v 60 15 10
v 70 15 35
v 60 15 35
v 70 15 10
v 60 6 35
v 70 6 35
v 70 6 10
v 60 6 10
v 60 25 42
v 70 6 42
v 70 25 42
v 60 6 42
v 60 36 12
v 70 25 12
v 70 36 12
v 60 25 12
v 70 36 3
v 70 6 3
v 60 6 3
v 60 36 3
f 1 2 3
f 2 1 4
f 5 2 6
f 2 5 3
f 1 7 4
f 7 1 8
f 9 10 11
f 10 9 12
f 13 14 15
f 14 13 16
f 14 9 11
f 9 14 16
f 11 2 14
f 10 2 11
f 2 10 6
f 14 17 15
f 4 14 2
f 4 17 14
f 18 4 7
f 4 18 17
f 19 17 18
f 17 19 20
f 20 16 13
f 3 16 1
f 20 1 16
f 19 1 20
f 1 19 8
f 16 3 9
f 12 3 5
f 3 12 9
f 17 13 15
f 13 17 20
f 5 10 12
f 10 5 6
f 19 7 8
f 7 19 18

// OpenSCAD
// file: smoothed_edge.scad
module smoothed_edge(radius=1.5, height=64) {
  difference() {
    difference() {
      color([1, 0, 0]) cylinder(h=height, r=radius);
      translate([-radius, 0, 0]) {
        color([0, 1, 0]) cube([radius * 2, radius, height]);
      }
    }

    translate([0, -radius, 0]) {
      color([0, 1, 0]) cube([radius, radius * 2, height]);
    }
  }
}
// file: smoothed_corner.scad
$fn=200;
module smoothed_corner(radius=5) {
  difference() {
    sphere(radius);
    union() {
      translate([0,-5,-5]) {
        cube([5,10,10]);
      }

      translate([-10,0,-5]) {
        cube([10, 10, 10]);
      }

      translate([-5,-5,0]) {
        cube([10,10,10]);
      }
    }

  }
}

smoothed_corner();
// file: battery_door_switch_screws.scad
use <screw_with_nut.scad>

module battery_door_switch_screws() {
  // hole top
  translate([9,49,3]) {
    rotate([0,-90,0]) color([0,0,1]) screw_with_nut(threaded_height=6, nut_type="none");
  }

  // hole bottom
  translate([9,49,36]) {
    rotate([0,-90,0]) color([0,0,1]) screw_with_nut(threaded_height=6, nut_type="none");
  }
}
// file: switch.scad
$fn = 200;
module switch_hole() {
  translate([0,0,-6.5]) {
    color([1,0,0]) cube([5,8,13]);
  }
  rotate([0,90,0]) cylinder(h=5, r=6.5);
  translate([0,8,0]) {
    rotate([0,90,0]) cylinder(h=5, r=6.5);
  }
}

function get_switch_x() = 62.5;
function get_switch_y() = 27;

module switch() {
  // make the front curvy
  intersection() {
    // remove a cylinder from the back to add a curve
    difference() {
      cube([get_switch_x(),get_switch_y(),18]);

      translate([30,27,345]) {
        rotate([90,0,0])
        color([1,0,0])
        cylinder(h=27, r=330.2);
      }
    }

    translate([30,27,331]) {
      rotate([90,0,0])
      color([1,0,0])
      cylinder(h=27, r=330.2);
    }
  }

  // switch_hole();
  translate([65 / 2 + 2.5, 12.5,1.5]) {
    rotate([0,90,90]) { switch_hole(); }
  }
}

// translate([30,27,345]) {
  // rotate([90,0,0])
  // color([1,0,0])
  // cylinder(h=27, r=330.2);
// }
switch();
// file: nut.scad
// 1.5^2 + y^2 = 3^2
// sqrt(3^2 - 1.5^2)
//       30
//    /   |
// 60  - 90
// cos(30) = x / 3
// x = 3 cos(30)
module hex(side_length=3) {
  points = [[0,0], [side_length, 0], [side_length / 2, side_length * cos(30)]];
  for (i=[0:1:5]) {
    rotate([0,0,i * 60]) polygon(points);
  }
}

module hex_nut(side_length=3, height=2) {
    linear_extrude(height=height) hex(side_length);
}

module square_nut(side_length=5, height=2) {
    cube([5,5,2]);
}
// file: screw.scad
$fn=100;

module screw(screw_head_radius=3, screw_head_height=3, threaded_radius=1.5, threaded_height=10) {
  // screw head
  cylinder(h=screw_head_height, r=screw_head_radius);

  translate([0, 0, screw_head_height]) {
    cylinder(h=threaded_height, r=threaded_radius);
  }
}

// m3x10

screw(screw_head_radius=3, screw_head_height=3, threaded_radius=1.5, threaded_height=10);
// file: usbc_female.scad
$fn=100;
module usbc_female() {
  // left half cylinder
  rotate([-90,0,0]) cylinder(h=20, r=3.25);

  translate([0,0,-3.25]) {
    cube([7,20,6.5]);
  }

  // right half cylinder
  translate([7,0,0]) {
    rotate([-90,0,0]) cylinder(h=20, r=3.25);
  }
}

usbc_female();
// file: battery_door_with_switch.scad
use <battery_door.scad>
use <switch.scad>
use <screw_with_nut.scad>
use <battery_door_switch_screws.scad>
$fn = 300;


module removables() {
  // switch
  translate([7.5,80,7]) {
    color([1, 0,0]) rotate([0,0,-90]) rotate([90,0,0]) switch();
  }

  battery_door_switch_screws();
}
module battery_door_with_switch(type="object") {
  difference() {
    battery_door(type=type);
    removables();
  }
}

battery_door_with_switch();
// file: battery_door.scad
$fn = 100;
use <smoothed_cube.scad>

module stuff(
    depth=5,
    battery_height = 30 + 5 * 2,
    fan_radius = 60,
    oset = 1,
    smoothing_factor=1.5,
    type="object",
    y=9,
    z = 9
) {
  // door knob

  z_offset = battery_height / 2 - z / 2;
  translate([depth, -3, z_offset]) {
    if (type == "object")  {
      color([1,0,0]) smoothed_cube(
          x=3,
          y=y,
          z=z,
          radius_1 = smoothing_factor,
          radius_2=smoothing_factor,
          radius_3=smoothing_factor,
          radius_4=smoothing_factor,
          edge_1_2_radius=smoothing_factor,
          edge_2_3_radius=smoothing_factor,
          edge_3_4_radius=smoothing_factor,
          edge_1_5_radius=smoothing_factor,
          edge_2_6_radius=smoothing_factor,
          edge_3_7_radius=smoothing_factor,
          edge_4_8_radius=smoothing_factor
      );
    } else {
      // add some spacing so that it just fits
      color([1,0,0]) cube([3,y,9]);
    }
  }

  // body
  object_offset = type == "object" ? 1 : 0;

  translate([5,4,0]) {
    smoothed_cube(
      x=3,
      y=100 - depth - 5 - object_offset,
      z= battery_height,
      edge_1_2_radius=3
    );
  }


}

// stuff();
module battery_door(
    depth=5,
    battery_height = 29 + 5 * 2,
    fan_radius = 60,
    oset = 1,
    type="object"
) {
  // union() {
    color([1,0,1])
    stuff(battery_height=battery_height, type=type);

    // translate([4, -3, 19]) {
      // color([0,1,0]) cylinder(h=9, r=4);
    // }
  // }
}
//
// battery_door(type="spacing");
battery_door();
// remove();
  // to smoothen
// file: shoulder_strap_support_screws.scad
use <screw_with_nut.scad>
module shoulder_strap_support_screws(wideness=15) {
  // left hole
  translate([wideness,0,5]) {
    color([1, 0, 0]) rotate([-90,0,0]) screw_with_nut(threaded_height=8);
  }

  // right hole
  translate([-wideness,0,5]) {
    color([1, 0, 0]) rotate([-90,0,0]) screw_with_nut(threaded_height=8);
  }
}
// file: top_screws_with_nuts.scad
use <screw_with_nut.scad>
module top_screws_with_nuts(fan_radius=60, depth=5, height=50) {
  // top hole 1
  translate([fan_radius * 2, fan_radius * 2 + depth + 1, 2 * depth]) {
    rotate([-90,0,0]) color([0,0,1]) screw_with_nut(threaded_height=6);
  }

  // top hole 2
  translate([fan_radius * 2, fan_radius * 2 + depth + 1, height + depth ]) {
    rotate([-90,0,0]) color([0,1,0]) screw_with_nut(threaded_height=6);
  }
}


top_screws_with_nuts();
// file: tcore_powerbank.scad
module tcore_powerbank() {
  cube([70,70,30]);
  translate([70 / 5, 70 / 2, 30]) {
    color([1,0,0])
    cylinder(h=5, r=10);
  }
}

tcore_powerbank();
// file: screw_with_nut.scad
use <screw.scad>
use <nut.scad>

module screw_with_nut(hex_nut_height=2.5, screw_head_height=3, threaded_height=10, threaded_radius=1.5, screw_head_radius=3, hex_nut_side_length=3, square_nut_height=2, square_nut_side_length=5, nut_type="hex") {
  screw(screw_head_radius=screw_head_radius, screw_head_height=screw_head_height, threaded_radius=threaded_radius, threaded_height=threaded_height);

  if (nut_type == "hex") {
    translate([0,0, screw_head_height + threaded_height - hex_nut_height]) {
      hex_nut(side_length=hex_nut_side_length, height=hex_nut_height);
    }
  }

  else if (nut_type == "square"){
    translate([
        -square_nut_side_length / 2,
        -square_nut_side_length / 2,
        screw_head_height + threaded_height - square_nut_height
    ]) {
      square_nut(side_length=square_nut_side_length, height=square_nut_height);
    }
  }

}

screw_with_nut(nut_type="square");
// file: noctua_speed_controller.scad
$fn = 100;
module noctua_speed_controller(led_height=14.5) {
  cube([40,25,14]);
  // speed dial
  translate([16,25 / 2,14]) {
    cylinder(h=7, r=3.75);
  }

  // left LED
  translate([8, 3.5, 0]) {
    cylinder(h=led_height, r=1.5);
  }

  // right LED
  translate([8, 25 - 3.5, 0]) {
    cylinder(h=led_height, r=1.5);
  }
}

noctua_speed_controller();
  // translate([8, 3.5, 0]) {
    // cylinder(h=3, r=1.5);
  // }
// file: one_filter_one_fan_battery_casing.scad
use <screw_with_nut.scad>
use <top_screws_with_nuts.scad>
use <shoulder_strap_support_screws.scad>
use <battery_door.scad>
use <battery_door_with_switch.scad>
use <noctua_speed_controller.scad>
use <usbc_female.scad>
use <smoothed_cube.scad>
use <speed_controller_support.scad>
use <tcore_powerbank.scad>

$fn = 100;

depth = 5;
fan_radius = 60;
oset = 1;
battery_height = 30 + 5 * 2 ;
battery_width = 100;

module second_removables(battery_width=100, depth=5) {
  // battery door right
  translate([123,1, 3]) {
    rotate([0, 0, 0]) battery_door_with_switch(type="spacing");
  }

  // battery door left
  translate([8,1, battery_height + depth -3]) {
    rotate([0, 180, 0]) battery_door(type="spacing");
  }
}

module removables(battery_width=100, depth=5, battery_height=29 + 5 * 2) {
  // space for battery
  translate([0, depth, 3]) {
    color([1, 0, 0]) cube([(fan_radius * 2 + depth * 2 + oset), battery_width - depth * 2 - 0, battery_height]);
  }

  // hole for fan wiring
  translate([10 , 80, -depth]) {
    color([0,0,1]) cube([20, 10, 20]);
  }

  // hex nuts at the bottom right
  translate([-10, 70, -132]) {
    rotate([90,0,0]) top_screws_with_nuts();
  }

  // hex nuts at the bottom left
  translate([-100, 70, -132]) {
    rotate([90,0,0]) top_screws_with_nuts();
  }

  // screws for shoulder strap ring left

  // screws for shoulder strap ring right
  translate([fan_radius * 2 + 1 - depth * 3,55,53]) {
    rotate([-90,0,0])  shoulder_strap_support_screws();
  }

  // hole for noctua speed controller
  translate([fan_radius - depth * 2 ,15,10]) {
    color([1,0,0]) rotate([90,0,0]) noctua_speed_controller();
  }

  // usbc hole
  translate([fan_radius * 2 - depth * 3,battery_width - depth, battery_height / 2 + depth + depth / 2 - 1 / 2 ]) {
    color([1,0,0]) rotate([0,90,0])
      usbc_female();
  }

  // hole for battery meter
  translate([fan_radius + depth / 4 + 5 , fan_radius ,battery_height]) {
    color([1,0,0]) cylinder(h=10, r=10);
  }

}



module one_filter_one_fan_battery_casing(battery_width=100, battery_height=30 + 5 * 2, depth=5, oset=1, fan_radius=60 ) {
  difference() {
    difference() {
      smoothed_cube(
          x=fan_radius * 2 + depth * 2+ oset,
          y=battery_width,
          z=battery_height + 2 * 3 + oset,
          radius_1=5,
          radius_4=5,
          radius_5=5,
          radius_8=5,
          edge_1_2_radius=5,
          edge_3_4_radius=5,
          edge_4_1_radius=5,
          edge_1_5_radius=5,
          edge_5_6_radius=5,
          edge_7_8_radius=5,
          edge_4_8_radius=5,
          edge_8_5_radius=5
          );

          // edge_smoothers(fan_radius, battery_height, depth);
      removables();
    }



    second_removables();
  }
}

one_filter_one_fan_battery_casing(battery_width, battery_height);
translate([+70,-1,0]) {
//
  speed_controller_support();
}

translate([10,25,12]) {
  color([0,0,1])
  tcore_powerbank();
}
  // battery door left
  // translate([8,1, battery_height + depth -3]) {
    // rotate([0, 180, 0]) battery_door(type="object");
  // }
// second_removables();
// removables();


  // hex nuts at the bottom left

  // battery door left

  // translate([fan_radius * 2 + depth / 2, 0, 19]) {
    // color([0,1,0]) cube([10, depth, 10]);
  // }

  // battery door left
  // translate([8,1, battery_height + depth ]) {
    // rotate([0, 180, 0]) battery_door();
  // }
  // battery door right
  // translate([123,1, 3]) {
    // rotate([0, 0, 0]) battery_door_with_switch(type="object");
  // }
// text('AirGo');

  // translate([fan_radius - depth * 2 ,15,10]) {
    // color([1,0,0]) rotate([90,0,0]) noctua_speed_controller();
  // }
  // hole for battery meter
// main file
use <one_filter_one_fan_battery_casing.scad>
use <noctua_speed_controller.scad>
use <screw_with_nut.scad>
use <tcore_powerbank.scad>

depth = 5;
fan_radius = 60;
battery_height = 29 + 5 * 2 ;
battery_actual_height = 24;

module removables() {
  // one_filter_one_fan_battery_casing();
  // hole for noctua speed controller
  translate([fan_radius - depth - 3 ,15,10]) {
    color([0,1,0]) rotate([90,0,0]) noctua_speed_controller();
  }


  // tcore powerbank
  translate([10,25,12]) {
    color([0,0,1])
    tcore_powerbank();
  }

  // noctua speed controller screw, bottom
  // translate([fan_radius + depth, 0, depth + depth / 4]) {
    // color([0,1,0]) rotate([-90,0,0]) screw_with_nut(threaded_height=6, nut_type="none");
  // }

  // noctua speed controller screw, bottom
  // translate([fan_radius + depth, 0, battery_height + depth / 4]) {
    // color([1,0,0]) rotate([-90,0,0]) screw_with_nut(threaded_height=6, nut_type="none");
  // }
}

module speed_controller_support() {
  difference() {
    translate([fan_radius / 2 + depth * 6, 6, 3]) {
      cube([10, 30, battery_height]);
    }
    removables();
  }


  // support for T-CORE battery
  // translate([fan_radius / 2 + depth * 6, 3 + 20, 3]) {
    // cube([10, 9, battery_height - battery_actual_height]);
  // }

}
  speed_controller_support();
